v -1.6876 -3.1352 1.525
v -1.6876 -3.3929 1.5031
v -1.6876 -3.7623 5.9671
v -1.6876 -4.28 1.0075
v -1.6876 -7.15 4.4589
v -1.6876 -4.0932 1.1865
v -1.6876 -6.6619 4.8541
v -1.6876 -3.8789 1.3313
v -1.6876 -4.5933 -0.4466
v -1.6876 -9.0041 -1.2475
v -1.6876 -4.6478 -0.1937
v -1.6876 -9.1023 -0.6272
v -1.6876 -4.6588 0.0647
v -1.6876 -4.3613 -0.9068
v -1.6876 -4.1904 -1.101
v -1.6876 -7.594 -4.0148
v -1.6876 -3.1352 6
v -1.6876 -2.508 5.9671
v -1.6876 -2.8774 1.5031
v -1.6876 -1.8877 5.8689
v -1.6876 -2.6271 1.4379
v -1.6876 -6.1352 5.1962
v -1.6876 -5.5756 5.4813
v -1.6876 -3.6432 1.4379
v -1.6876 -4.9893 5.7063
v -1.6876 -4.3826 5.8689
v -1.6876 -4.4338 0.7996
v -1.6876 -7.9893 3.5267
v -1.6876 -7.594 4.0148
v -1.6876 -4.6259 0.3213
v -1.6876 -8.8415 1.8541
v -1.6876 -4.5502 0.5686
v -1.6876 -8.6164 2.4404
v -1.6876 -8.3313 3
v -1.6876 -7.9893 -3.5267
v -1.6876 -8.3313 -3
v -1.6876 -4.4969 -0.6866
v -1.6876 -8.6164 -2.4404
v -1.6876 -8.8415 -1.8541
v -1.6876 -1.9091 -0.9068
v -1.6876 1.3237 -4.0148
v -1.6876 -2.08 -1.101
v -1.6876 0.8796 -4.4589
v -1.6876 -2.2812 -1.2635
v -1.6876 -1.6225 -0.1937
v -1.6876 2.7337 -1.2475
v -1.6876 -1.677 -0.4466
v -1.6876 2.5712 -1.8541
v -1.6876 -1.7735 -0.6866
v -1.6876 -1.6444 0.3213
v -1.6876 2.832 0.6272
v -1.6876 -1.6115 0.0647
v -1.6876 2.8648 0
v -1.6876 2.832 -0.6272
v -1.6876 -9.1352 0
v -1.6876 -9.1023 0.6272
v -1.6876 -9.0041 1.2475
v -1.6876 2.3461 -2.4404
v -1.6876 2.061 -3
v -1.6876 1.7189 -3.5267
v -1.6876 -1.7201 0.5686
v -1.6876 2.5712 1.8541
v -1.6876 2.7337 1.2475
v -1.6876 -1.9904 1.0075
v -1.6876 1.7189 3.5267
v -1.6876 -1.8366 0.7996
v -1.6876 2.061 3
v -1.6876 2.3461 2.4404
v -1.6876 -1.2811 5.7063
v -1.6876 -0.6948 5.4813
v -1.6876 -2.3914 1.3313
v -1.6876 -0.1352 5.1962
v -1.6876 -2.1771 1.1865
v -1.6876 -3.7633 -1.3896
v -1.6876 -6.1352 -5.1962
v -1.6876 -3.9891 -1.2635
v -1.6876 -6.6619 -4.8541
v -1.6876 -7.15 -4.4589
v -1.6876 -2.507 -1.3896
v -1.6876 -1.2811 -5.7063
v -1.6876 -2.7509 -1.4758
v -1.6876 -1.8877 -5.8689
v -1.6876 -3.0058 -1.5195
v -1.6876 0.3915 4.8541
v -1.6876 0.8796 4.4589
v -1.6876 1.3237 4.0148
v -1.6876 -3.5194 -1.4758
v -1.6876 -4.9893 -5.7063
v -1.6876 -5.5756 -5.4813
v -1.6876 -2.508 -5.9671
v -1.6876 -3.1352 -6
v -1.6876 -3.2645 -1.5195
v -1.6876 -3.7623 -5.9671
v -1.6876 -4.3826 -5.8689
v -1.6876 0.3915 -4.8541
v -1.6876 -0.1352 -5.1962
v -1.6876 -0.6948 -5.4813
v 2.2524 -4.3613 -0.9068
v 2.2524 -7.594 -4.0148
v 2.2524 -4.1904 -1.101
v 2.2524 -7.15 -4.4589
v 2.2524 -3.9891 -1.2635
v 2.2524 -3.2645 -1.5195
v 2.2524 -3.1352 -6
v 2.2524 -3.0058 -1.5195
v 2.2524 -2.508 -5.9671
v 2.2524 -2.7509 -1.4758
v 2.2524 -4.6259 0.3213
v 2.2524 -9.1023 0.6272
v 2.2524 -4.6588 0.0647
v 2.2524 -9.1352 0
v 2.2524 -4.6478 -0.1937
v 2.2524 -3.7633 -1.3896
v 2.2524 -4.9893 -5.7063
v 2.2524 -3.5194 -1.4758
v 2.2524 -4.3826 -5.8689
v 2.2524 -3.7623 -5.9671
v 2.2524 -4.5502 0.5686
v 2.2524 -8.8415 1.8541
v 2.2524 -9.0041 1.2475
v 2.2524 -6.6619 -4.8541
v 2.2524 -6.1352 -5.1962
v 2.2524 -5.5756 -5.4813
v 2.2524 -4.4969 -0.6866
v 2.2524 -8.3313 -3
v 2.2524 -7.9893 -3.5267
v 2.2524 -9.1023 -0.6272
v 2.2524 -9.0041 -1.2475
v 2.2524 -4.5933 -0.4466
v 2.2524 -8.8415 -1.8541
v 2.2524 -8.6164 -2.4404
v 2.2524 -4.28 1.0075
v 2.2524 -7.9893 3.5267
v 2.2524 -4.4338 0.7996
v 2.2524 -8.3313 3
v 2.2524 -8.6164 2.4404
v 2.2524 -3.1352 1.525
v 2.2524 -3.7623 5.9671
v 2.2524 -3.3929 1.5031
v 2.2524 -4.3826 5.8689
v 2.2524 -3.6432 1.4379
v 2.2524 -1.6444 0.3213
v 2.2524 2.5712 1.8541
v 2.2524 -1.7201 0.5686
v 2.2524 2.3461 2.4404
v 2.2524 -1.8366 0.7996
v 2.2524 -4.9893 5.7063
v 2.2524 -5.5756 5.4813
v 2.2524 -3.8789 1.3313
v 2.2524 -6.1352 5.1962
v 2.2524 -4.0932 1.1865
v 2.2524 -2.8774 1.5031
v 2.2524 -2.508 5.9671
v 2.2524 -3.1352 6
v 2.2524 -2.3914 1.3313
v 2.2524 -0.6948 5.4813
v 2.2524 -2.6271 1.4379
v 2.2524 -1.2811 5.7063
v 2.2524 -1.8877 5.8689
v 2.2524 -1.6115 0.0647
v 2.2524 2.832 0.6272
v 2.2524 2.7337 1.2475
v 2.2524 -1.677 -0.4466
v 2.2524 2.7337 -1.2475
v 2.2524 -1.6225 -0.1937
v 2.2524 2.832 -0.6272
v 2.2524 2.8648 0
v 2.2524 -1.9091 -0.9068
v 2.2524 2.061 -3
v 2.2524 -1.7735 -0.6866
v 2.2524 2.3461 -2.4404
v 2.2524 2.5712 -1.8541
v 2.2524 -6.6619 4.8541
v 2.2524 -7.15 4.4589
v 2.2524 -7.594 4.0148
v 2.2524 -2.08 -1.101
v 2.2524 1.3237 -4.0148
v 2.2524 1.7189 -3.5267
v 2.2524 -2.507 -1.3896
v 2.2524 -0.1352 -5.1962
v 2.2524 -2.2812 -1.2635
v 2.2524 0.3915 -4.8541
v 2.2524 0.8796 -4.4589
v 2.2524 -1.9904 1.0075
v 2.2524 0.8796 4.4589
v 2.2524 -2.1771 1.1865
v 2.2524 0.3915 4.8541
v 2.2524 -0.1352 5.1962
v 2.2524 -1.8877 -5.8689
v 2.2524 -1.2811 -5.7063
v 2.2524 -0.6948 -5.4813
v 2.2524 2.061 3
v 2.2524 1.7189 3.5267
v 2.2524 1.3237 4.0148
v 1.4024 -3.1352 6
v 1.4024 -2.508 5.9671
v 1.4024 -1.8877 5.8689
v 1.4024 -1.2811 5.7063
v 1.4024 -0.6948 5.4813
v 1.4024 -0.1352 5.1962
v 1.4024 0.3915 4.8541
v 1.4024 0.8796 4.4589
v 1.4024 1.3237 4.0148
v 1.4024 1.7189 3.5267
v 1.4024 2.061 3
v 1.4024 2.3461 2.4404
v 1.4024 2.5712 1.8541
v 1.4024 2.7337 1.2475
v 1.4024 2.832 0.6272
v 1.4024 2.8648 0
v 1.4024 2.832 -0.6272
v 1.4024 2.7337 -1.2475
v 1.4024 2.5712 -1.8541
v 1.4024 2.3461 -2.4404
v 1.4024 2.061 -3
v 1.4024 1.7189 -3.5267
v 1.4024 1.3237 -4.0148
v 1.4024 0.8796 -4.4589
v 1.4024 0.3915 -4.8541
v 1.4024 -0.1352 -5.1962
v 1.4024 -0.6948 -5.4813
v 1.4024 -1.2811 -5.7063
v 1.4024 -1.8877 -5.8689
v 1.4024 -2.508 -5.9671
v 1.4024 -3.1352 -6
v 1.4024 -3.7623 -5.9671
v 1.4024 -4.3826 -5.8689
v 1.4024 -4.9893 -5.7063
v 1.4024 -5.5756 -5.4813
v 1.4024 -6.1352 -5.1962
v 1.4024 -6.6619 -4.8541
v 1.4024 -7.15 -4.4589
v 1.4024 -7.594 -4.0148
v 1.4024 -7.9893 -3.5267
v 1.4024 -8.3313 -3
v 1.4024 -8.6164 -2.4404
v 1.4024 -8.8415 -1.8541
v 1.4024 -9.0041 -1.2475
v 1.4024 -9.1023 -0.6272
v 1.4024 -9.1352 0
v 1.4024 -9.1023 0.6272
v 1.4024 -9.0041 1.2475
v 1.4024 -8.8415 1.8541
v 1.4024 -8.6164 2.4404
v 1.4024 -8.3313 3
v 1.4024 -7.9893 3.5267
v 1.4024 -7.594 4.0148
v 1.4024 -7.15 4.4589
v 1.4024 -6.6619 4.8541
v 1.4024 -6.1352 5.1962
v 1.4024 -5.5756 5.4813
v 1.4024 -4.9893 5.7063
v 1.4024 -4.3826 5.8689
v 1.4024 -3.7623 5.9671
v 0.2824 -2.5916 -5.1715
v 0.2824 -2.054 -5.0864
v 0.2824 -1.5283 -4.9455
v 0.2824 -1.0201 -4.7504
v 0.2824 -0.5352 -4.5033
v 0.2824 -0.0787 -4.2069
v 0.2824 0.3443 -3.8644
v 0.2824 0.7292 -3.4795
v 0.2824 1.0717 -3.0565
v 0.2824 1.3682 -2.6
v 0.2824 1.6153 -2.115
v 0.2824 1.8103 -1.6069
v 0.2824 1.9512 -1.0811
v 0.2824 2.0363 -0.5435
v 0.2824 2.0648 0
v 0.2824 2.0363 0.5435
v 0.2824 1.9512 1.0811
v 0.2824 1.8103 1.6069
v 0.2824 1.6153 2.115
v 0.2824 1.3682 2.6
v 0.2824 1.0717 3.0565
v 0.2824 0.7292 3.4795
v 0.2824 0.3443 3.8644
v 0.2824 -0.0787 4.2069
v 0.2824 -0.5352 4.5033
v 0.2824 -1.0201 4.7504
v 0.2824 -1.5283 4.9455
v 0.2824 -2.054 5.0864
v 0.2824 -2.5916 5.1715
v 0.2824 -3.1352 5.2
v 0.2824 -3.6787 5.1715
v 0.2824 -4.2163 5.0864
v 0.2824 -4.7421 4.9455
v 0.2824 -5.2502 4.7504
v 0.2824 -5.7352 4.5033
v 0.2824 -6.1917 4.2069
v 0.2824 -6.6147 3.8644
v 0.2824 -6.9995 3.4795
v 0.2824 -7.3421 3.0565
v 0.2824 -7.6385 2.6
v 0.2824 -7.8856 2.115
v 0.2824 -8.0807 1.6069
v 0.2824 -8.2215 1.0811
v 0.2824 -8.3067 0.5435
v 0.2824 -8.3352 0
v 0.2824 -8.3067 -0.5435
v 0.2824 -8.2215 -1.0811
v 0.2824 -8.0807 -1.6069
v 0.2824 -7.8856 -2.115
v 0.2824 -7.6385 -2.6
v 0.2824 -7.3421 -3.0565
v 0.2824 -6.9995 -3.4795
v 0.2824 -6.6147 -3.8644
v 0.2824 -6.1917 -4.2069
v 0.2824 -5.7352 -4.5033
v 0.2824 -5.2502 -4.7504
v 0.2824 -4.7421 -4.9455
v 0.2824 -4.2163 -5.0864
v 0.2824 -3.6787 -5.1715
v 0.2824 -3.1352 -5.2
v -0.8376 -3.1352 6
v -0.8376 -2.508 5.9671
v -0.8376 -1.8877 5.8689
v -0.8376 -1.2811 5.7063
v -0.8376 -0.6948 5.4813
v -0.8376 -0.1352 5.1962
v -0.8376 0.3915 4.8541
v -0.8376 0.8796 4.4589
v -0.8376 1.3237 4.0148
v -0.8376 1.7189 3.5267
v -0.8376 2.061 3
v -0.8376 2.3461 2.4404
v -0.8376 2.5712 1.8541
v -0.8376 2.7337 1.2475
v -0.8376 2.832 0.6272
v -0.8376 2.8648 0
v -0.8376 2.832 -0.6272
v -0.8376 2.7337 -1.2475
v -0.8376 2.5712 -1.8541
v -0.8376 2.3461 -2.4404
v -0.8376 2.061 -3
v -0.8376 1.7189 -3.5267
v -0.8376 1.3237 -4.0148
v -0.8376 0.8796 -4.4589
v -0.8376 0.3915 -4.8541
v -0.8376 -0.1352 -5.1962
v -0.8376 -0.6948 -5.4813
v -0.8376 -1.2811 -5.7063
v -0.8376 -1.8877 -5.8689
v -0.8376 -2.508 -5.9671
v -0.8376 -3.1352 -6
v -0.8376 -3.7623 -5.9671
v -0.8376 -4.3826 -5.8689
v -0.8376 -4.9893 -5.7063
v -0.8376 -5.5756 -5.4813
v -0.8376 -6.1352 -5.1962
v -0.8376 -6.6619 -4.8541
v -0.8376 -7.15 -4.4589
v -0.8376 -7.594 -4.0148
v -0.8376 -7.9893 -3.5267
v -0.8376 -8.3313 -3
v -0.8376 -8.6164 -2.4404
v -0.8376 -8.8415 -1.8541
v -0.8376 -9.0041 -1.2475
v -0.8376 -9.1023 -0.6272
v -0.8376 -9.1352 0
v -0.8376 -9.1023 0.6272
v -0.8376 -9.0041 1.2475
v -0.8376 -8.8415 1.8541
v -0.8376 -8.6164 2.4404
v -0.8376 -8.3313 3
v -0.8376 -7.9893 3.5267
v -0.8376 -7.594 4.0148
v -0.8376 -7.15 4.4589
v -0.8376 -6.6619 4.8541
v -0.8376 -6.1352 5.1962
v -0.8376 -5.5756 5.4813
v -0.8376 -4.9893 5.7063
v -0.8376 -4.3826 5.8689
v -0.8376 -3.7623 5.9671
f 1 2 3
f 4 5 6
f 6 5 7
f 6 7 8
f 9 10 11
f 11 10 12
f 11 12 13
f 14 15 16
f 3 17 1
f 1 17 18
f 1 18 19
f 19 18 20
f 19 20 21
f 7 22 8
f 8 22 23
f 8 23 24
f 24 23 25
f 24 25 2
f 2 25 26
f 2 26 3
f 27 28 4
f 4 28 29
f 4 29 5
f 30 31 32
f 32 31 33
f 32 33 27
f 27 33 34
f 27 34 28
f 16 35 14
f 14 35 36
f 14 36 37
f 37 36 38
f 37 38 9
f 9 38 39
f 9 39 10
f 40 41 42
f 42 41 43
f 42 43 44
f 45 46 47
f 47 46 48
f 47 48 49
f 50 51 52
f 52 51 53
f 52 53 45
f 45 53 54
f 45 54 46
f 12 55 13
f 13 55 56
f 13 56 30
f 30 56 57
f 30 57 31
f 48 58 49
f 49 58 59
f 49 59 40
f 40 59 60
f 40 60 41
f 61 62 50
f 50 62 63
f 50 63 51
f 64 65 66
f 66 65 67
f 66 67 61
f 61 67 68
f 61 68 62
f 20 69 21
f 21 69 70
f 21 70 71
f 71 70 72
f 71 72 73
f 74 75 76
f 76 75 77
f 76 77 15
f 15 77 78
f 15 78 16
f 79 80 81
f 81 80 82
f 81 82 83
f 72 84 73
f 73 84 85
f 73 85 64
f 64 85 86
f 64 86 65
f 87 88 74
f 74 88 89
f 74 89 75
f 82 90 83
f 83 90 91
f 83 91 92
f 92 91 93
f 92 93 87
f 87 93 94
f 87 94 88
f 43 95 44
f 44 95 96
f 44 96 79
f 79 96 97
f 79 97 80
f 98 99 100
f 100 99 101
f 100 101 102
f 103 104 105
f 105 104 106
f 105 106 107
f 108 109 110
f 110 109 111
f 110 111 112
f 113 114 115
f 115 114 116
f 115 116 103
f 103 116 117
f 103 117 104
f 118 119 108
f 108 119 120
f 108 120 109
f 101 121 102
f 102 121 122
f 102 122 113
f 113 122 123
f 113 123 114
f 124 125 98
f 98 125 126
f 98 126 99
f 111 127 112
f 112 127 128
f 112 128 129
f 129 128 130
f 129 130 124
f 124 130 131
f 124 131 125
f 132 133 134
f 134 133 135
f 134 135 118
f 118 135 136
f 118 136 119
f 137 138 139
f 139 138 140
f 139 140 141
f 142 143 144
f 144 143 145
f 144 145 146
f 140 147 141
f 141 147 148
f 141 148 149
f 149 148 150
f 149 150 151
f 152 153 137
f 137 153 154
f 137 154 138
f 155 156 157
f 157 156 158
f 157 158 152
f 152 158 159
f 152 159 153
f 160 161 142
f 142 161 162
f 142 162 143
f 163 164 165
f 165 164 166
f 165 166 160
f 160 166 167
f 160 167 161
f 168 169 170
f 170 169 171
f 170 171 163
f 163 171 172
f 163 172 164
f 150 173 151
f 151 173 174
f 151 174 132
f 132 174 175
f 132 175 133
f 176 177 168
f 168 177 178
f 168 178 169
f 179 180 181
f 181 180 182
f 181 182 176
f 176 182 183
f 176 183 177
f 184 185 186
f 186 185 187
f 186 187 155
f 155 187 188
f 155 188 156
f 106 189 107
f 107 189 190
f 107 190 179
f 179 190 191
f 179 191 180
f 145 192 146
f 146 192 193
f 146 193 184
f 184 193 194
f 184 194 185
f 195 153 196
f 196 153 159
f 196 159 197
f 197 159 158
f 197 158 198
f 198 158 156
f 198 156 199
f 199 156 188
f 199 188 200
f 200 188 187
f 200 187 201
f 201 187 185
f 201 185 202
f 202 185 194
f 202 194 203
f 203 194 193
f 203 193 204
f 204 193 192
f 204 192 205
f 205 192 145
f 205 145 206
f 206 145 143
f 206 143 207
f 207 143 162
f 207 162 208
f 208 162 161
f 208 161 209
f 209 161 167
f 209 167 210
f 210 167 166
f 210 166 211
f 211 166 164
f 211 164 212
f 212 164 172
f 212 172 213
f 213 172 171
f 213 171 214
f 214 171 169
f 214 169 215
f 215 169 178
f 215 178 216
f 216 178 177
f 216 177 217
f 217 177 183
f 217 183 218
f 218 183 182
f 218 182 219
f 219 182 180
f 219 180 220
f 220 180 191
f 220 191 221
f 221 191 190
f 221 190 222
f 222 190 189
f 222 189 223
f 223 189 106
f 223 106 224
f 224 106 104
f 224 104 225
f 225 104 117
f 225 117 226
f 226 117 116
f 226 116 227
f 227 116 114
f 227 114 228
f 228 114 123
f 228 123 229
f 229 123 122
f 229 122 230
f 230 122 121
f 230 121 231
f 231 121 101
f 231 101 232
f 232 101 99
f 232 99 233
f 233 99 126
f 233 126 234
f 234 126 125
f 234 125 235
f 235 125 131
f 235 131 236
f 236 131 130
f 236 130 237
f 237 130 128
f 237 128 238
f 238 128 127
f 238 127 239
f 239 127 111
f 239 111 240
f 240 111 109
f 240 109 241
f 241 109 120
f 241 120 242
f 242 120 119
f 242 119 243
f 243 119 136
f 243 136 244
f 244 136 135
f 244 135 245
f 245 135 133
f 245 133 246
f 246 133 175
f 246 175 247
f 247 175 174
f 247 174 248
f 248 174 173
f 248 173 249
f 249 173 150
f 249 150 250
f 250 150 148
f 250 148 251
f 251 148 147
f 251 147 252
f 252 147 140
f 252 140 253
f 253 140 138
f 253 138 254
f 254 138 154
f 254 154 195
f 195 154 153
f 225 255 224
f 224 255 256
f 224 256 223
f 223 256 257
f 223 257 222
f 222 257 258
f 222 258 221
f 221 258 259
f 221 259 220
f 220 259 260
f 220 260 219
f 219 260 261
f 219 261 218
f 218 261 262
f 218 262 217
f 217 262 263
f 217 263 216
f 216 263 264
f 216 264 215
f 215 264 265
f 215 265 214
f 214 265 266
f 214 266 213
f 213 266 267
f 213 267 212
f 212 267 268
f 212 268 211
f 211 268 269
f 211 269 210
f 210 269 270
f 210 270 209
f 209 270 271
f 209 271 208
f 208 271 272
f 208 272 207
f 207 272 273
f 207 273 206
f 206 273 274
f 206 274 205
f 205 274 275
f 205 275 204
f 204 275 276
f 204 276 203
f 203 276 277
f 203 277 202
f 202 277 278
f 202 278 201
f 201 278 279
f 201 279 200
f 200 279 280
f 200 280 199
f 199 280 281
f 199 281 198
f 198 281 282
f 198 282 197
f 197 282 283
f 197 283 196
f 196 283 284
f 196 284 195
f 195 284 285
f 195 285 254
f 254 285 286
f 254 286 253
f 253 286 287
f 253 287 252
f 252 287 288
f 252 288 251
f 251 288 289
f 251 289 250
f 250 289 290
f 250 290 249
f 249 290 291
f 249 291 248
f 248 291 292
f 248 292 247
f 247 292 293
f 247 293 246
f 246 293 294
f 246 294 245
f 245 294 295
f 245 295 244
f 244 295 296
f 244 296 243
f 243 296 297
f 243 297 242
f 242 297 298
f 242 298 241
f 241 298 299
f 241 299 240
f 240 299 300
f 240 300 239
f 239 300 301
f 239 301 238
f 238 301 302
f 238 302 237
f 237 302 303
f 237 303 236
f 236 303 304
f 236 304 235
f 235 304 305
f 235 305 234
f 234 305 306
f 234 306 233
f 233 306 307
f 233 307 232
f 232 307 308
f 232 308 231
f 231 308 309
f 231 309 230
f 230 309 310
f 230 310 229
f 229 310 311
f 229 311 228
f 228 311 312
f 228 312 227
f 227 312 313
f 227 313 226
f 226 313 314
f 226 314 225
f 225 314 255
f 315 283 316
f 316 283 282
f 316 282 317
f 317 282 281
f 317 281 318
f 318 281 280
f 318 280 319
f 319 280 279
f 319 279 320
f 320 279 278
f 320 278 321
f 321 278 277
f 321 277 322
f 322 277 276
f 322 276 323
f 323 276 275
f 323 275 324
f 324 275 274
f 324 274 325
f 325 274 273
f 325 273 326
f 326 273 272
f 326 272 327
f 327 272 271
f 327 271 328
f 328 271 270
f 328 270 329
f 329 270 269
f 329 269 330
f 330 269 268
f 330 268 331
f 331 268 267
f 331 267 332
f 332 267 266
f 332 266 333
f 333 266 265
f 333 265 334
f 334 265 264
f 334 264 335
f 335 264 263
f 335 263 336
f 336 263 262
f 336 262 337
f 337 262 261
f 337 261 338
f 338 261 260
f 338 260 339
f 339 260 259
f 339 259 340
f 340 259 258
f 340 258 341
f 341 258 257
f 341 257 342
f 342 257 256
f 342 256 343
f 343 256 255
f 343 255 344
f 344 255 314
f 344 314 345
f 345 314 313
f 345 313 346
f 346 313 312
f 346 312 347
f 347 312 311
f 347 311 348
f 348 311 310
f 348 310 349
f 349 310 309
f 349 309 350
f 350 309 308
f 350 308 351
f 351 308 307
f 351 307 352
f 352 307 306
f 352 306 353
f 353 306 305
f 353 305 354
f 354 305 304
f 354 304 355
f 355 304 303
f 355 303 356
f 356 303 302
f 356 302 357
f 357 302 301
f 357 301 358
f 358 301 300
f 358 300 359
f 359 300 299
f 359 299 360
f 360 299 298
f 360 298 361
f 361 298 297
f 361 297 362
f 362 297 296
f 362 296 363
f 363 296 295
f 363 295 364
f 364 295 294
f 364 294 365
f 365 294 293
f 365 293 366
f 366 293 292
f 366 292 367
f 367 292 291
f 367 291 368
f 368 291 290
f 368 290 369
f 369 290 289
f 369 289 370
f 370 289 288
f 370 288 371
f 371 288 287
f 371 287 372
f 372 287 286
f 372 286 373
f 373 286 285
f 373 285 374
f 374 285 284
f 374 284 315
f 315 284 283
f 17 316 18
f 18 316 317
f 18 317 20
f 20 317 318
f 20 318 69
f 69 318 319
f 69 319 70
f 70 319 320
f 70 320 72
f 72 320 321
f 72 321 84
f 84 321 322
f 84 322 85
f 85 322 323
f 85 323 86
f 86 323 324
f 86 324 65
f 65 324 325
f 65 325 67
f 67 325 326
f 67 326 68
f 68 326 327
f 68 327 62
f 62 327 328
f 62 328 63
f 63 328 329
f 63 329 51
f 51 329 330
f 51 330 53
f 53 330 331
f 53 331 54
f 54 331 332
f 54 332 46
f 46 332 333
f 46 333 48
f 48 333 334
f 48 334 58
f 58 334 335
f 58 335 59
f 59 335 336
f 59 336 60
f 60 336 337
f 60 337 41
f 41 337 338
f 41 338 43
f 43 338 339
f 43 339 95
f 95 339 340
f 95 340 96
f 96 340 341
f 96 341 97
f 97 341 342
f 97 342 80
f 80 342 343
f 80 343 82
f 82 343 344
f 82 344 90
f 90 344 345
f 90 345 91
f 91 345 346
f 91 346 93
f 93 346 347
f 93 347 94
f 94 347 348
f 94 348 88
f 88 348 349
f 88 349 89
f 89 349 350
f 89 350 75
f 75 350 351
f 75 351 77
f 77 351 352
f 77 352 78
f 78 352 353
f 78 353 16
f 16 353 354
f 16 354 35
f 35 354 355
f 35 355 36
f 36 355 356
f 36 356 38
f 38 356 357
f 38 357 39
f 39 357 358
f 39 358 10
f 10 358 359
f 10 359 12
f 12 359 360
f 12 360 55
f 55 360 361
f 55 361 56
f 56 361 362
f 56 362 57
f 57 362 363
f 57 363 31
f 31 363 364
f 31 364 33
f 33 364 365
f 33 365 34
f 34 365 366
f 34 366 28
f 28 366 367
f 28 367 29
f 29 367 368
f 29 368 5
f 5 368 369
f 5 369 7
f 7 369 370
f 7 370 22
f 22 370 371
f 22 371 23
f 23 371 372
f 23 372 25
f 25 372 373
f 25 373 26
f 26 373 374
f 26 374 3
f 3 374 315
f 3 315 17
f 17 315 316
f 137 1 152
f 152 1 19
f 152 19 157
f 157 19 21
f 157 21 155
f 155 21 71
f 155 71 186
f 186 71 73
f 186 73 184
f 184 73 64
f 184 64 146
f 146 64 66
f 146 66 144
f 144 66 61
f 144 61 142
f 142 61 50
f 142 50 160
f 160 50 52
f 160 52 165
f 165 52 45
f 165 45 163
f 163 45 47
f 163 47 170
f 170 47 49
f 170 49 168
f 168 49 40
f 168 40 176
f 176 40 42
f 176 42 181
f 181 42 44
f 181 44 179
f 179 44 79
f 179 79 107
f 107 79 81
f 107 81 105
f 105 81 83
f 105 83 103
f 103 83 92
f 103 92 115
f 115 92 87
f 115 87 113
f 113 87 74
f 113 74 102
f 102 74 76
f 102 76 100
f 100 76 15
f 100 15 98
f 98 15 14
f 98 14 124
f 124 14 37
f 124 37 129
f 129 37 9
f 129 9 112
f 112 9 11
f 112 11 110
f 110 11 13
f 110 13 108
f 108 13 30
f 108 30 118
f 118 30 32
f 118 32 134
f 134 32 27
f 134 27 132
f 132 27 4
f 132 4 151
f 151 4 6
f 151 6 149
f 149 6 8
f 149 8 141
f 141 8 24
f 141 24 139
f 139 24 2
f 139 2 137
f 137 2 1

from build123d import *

# Parameters (mm, degrees)
SKETCH2_R          = 1.525
CUT_EXTRUDE1_DEPTH = 12.61787595


with BuildPart() as part:
    # Sketch1 → Revolve1 (revolve)
    with BuildSketch(Plane.XY, mode=Mode.PRIVATE) as revolve1_sk:
        Polygon((-1.68761801, 2.864823944), (-0.83761801, 2.864823944), (0.28238199, 2.064823944), (1.40238199, 2.864823944), (2.25238199, 2.864823944), (2.25238199, -3.135176056), (-1.68761801, -3.135176056), align=None)
    revolve(revolve1_sk.sketch.rotate(Axis((-1.68761801, -3.135176056, 0), (1, 0, 0)), 90), axis=Axis((-1.68761801, -3.135176056, 0), (1, 0, 0)))

    # Sketch2 → Cut-Extrude1 (cut, through all)
    with BuildSketch(Plane.ZY.offset(1.68761801)):
        with Locations((0, -3.135176056)):
            Circle(SKETCH2_R)
    extrude(amount=-CUT_EXTRUDE1_DEPTH, mode=Mode.SUBTRACT)


solid = part.part
